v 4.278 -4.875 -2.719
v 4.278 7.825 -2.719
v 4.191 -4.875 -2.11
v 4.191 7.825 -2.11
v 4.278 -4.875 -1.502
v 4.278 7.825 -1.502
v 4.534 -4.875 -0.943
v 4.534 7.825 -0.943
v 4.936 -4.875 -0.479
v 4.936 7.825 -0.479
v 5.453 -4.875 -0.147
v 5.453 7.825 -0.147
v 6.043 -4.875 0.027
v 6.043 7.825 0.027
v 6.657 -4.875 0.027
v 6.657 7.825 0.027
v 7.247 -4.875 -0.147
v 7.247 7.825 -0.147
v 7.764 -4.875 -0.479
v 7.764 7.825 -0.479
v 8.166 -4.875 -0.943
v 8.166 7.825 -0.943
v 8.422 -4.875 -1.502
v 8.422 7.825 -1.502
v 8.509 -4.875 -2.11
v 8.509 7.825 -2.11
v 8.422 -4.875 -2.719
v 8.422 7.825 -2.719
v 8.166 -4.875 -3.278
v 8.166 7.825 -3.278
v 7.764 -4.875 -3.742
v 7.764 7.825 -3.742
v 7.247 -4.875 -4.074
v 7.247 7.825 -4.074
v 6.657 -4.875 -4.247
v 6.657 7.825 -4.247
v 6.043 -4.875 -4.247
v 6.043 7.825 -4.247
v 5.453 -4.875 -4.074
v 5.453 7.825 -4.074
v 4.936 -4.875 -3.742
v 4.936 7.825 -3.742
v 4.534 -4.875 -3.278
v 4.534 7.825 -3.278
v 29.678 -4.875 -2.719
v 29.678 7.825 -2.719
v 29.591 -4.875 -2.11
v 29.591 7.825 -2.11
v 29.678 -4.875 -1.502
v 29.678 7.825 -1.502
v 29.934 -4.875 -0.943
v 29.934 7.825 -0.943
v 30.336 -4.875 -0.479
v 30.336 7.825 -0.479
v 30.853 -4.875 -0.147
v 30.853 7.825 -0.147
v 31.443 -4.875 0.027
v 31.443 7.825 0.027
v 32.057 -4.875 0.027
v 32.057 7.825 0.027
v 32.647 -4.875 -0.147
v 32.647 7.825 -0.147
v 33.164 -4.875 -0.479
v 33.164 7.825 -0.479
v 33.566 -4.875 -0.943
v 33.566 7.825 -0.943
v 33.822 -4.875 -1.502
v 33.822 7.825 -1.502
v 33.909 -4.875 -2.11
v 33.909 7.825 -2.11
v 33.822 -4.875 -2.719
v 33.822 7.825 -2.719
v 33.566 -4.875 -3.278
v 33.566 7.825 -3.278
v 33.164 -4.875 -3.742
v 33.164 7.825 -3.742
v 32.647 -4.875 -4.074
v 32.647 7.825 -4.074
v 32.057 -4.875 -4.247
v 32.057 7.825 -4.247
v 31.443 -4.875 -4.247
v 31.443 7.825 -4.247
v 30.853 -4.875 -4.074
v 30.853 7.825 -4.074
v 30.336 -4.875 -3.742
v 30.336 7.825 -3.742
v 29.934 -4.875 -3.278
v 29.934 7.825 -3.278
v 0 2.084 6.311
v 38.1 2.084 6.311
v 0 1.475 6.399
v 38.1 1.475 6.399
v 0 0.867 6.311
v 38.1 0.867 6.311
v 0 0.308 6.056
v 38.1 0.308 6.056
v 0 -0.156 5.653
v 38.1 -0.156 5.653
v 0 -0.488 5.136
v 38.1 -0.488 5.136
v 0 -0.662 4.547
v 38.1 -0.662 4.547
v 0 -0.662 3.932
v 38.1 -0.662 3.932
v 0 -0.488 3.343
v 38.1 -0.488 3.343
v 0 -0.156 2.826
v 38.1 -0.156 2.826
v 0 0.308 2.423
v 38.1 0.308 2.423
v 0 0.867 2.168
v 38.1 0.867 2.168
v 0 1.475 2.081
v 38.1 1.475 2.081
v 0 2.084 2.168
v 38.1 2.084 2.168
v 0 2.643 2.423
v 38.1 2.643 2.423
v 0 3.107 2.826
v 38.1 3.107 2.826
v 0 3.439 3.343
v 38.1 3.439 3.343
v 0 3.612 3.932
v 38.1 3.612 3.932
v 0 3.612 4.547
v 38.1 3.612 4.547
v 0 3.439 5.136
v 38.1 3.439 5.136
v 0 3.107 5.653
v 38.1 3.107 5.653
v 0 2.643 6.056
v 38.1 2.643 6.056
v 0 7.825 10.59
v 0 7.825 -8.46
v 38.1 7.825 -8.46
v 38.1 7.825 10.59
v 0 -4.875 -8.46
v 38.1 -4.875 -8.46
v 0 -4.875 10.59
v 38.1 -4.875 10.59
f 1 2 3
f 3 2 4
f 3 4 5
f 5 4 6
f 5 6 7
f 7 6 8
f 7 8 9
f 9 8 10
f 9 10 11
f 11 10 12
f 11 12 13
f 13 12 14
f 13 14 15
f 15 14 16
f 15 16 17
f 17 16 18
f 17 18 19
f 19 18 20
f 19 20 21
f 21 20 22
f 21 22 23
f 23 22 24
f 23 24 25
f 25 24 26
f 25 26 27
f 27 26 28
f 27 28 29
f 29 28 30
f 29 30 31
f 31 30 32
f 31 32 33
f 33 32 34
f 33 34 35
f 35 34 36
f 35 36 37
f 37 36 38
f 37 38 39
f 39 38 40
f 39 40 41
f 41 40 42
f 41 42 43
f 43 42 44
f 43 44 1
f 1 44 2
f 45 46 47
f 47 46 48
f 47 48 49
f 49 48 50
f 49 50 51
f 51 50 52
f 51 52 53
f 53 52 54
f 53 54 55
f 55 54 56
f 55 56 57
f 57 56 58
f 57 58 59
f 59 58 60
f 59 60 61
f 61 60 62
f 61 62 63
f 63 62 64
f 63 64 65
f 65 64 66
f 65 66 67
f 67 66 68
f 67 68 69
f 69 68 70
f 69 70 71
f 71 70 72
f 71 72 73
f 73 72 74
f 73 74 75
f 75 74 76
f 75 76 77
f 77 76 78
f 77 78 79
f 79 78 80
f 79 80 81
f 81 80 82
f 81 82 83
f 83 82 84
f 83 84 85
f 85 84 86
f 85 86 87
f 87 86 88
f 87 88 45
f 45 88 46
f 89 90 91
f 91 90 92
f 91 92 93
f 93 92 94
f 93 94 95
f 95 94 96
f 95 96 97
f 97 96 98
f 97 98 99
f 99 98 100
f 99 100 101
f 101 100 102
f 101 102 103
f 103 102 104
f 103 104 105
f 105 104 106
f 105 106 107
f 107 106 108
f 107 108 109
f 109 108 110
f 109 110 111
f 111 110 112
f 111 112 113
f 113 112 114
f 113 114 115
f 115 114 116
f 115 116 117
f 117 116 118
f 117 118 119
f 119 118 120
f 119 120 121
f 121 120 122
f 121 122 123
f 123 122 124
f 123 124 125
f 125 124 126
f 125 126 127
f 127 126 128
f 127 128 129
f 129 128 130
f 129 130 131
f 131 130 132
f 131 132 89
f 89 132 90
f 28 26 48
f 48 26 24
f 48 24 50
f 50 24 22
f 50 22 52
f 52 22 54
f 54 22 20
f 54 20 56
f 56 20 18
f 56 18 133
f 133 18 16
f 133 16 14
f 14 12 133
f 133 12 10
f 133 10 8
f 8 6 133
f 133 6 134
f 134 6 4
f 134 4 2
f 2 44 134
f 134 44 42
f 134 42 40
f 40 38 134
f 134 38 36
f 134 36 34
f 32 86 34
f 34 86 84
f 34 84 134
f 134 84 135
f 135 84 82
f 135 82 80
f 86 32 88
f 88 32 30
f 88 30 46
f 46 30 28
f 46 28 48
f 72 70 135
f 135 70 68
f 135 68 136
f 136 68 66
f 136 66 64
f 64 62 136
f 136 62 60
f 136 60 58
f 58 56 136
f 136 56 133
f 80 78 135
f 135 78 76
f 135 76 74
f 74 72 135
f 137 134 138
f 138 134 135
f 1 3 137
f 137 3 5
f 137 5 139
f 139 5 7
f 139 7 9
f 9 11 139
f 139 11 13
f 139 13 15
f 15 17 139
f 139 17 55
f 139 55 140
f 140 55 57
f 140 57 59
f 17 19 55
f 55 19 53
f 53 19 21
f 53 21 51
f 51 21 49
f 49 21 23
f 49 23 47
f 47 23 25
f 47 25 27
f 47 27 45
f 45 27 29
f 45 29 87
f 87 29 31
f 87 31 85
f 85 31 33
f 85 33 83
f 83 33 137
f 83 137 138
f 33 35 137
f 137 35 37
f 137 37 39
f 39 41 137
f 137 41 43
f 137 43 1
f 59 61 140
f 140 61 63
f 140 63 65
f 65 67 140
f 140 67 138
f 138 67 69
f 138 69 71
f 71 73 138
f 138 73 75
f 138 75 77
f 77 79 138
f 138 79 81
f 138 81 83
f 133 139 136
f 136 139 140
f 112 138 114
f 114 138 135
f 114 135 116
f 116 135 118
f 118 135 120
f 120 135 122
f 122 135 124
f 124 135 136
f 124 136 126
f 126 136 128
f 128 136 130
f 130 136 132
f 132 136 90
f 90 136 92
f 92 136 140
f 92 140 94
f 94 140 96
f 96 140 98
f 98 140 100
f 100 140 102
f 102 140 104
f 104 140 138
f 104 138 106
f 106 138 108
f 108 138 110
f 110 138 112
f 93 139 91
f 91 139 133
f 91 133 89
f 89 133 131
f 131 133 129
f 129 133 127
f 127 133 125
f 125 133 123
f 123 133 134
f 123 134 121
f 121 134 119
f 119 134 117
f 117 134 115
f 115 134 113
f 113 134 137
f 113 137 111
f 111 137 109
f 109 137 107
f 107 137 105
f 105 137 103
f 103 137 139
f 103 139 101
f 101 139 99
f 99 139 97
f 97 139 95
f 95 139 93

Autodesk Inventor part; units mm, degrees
ref_plane "YZ Plane" through (0, 0, 0) normal (1, 0, 0) x (0, 1, 0)
ref_plane "XZ Plane" through (0, 0, 0) normal (0, 1, 0) x (-1, 0, 0)
ref_plane "XY Plane" through (0, 0, 0) normal (0, 0, 1) x (1, 0, 0)
sketch "Sketch1" plane through (0, 0, 0) normal (1, 0, 0) x (0, 1, 0)
  line L0 (7.8254, 10.5896) -> (-4.8746, 10.5896)
  line L1 (-4.8746, 10.5896) -> (-4.8746, -8.4604)
  line L2 (-4.8746, -8.4604) -> (7.8254, -8.4604)
  line L3 (7.8254, -8.4604) -> (7.8254, 10.5896)
  point P0 (0, 0)
  dimension "d0" = 19.05
  dimension "d1" = 12.7
extrude "Extrusion1" add sketch "Sketch1" along normal blind 38.1
sketch "Sketch2" plane through (38.1, 0, 0) normal (1, 0, 0) x (0, 0, -1)
  line L0 (-10.5896, 7.8254) -> (-10.5896, -4.8746) projected
  line L1 (8.4604, 7.8254) -> (-10.5896, 7.8254) projected
  point P0 (0, 0)
  point P1 (-4.2396, 1.4754)
  dimension "d4" = 6.35
  dimension "d5" = 6.35
hole "Hole1" at (38.1, 1.4754, 4.2396) direction (-1, 0, 0) diameter 4.318 end through all
sketch "Sketch3" plane through (0, 7.8254, 10.5896) normal (0, 1, 0) x (1, 0, 0)
  line L0 (38.1, 19.05) -> (38.1, 0) projected
  line L1 (0, 19.05) -> (0, 0) projected
  line L2 (0, 19.05) -> (38.1, 19.05) projected
  point P0 (0, 10.5896)
  point P1 (6.35, 12.7)
  point P2 (31.75, 12.7)
  dimension "d13" = 6.35
  dimension "d14" = 6.35
  dimension "d15" = 6.35
  dimension "d16" = 0
hole "Hole2" at (6.35, 7.8254, -2.1104) at (31.75, 7.8254, -2.1104) direction (0, -1, 0) diameter 4.318 end through all
properties part number "MotorSpacerBlock2"
